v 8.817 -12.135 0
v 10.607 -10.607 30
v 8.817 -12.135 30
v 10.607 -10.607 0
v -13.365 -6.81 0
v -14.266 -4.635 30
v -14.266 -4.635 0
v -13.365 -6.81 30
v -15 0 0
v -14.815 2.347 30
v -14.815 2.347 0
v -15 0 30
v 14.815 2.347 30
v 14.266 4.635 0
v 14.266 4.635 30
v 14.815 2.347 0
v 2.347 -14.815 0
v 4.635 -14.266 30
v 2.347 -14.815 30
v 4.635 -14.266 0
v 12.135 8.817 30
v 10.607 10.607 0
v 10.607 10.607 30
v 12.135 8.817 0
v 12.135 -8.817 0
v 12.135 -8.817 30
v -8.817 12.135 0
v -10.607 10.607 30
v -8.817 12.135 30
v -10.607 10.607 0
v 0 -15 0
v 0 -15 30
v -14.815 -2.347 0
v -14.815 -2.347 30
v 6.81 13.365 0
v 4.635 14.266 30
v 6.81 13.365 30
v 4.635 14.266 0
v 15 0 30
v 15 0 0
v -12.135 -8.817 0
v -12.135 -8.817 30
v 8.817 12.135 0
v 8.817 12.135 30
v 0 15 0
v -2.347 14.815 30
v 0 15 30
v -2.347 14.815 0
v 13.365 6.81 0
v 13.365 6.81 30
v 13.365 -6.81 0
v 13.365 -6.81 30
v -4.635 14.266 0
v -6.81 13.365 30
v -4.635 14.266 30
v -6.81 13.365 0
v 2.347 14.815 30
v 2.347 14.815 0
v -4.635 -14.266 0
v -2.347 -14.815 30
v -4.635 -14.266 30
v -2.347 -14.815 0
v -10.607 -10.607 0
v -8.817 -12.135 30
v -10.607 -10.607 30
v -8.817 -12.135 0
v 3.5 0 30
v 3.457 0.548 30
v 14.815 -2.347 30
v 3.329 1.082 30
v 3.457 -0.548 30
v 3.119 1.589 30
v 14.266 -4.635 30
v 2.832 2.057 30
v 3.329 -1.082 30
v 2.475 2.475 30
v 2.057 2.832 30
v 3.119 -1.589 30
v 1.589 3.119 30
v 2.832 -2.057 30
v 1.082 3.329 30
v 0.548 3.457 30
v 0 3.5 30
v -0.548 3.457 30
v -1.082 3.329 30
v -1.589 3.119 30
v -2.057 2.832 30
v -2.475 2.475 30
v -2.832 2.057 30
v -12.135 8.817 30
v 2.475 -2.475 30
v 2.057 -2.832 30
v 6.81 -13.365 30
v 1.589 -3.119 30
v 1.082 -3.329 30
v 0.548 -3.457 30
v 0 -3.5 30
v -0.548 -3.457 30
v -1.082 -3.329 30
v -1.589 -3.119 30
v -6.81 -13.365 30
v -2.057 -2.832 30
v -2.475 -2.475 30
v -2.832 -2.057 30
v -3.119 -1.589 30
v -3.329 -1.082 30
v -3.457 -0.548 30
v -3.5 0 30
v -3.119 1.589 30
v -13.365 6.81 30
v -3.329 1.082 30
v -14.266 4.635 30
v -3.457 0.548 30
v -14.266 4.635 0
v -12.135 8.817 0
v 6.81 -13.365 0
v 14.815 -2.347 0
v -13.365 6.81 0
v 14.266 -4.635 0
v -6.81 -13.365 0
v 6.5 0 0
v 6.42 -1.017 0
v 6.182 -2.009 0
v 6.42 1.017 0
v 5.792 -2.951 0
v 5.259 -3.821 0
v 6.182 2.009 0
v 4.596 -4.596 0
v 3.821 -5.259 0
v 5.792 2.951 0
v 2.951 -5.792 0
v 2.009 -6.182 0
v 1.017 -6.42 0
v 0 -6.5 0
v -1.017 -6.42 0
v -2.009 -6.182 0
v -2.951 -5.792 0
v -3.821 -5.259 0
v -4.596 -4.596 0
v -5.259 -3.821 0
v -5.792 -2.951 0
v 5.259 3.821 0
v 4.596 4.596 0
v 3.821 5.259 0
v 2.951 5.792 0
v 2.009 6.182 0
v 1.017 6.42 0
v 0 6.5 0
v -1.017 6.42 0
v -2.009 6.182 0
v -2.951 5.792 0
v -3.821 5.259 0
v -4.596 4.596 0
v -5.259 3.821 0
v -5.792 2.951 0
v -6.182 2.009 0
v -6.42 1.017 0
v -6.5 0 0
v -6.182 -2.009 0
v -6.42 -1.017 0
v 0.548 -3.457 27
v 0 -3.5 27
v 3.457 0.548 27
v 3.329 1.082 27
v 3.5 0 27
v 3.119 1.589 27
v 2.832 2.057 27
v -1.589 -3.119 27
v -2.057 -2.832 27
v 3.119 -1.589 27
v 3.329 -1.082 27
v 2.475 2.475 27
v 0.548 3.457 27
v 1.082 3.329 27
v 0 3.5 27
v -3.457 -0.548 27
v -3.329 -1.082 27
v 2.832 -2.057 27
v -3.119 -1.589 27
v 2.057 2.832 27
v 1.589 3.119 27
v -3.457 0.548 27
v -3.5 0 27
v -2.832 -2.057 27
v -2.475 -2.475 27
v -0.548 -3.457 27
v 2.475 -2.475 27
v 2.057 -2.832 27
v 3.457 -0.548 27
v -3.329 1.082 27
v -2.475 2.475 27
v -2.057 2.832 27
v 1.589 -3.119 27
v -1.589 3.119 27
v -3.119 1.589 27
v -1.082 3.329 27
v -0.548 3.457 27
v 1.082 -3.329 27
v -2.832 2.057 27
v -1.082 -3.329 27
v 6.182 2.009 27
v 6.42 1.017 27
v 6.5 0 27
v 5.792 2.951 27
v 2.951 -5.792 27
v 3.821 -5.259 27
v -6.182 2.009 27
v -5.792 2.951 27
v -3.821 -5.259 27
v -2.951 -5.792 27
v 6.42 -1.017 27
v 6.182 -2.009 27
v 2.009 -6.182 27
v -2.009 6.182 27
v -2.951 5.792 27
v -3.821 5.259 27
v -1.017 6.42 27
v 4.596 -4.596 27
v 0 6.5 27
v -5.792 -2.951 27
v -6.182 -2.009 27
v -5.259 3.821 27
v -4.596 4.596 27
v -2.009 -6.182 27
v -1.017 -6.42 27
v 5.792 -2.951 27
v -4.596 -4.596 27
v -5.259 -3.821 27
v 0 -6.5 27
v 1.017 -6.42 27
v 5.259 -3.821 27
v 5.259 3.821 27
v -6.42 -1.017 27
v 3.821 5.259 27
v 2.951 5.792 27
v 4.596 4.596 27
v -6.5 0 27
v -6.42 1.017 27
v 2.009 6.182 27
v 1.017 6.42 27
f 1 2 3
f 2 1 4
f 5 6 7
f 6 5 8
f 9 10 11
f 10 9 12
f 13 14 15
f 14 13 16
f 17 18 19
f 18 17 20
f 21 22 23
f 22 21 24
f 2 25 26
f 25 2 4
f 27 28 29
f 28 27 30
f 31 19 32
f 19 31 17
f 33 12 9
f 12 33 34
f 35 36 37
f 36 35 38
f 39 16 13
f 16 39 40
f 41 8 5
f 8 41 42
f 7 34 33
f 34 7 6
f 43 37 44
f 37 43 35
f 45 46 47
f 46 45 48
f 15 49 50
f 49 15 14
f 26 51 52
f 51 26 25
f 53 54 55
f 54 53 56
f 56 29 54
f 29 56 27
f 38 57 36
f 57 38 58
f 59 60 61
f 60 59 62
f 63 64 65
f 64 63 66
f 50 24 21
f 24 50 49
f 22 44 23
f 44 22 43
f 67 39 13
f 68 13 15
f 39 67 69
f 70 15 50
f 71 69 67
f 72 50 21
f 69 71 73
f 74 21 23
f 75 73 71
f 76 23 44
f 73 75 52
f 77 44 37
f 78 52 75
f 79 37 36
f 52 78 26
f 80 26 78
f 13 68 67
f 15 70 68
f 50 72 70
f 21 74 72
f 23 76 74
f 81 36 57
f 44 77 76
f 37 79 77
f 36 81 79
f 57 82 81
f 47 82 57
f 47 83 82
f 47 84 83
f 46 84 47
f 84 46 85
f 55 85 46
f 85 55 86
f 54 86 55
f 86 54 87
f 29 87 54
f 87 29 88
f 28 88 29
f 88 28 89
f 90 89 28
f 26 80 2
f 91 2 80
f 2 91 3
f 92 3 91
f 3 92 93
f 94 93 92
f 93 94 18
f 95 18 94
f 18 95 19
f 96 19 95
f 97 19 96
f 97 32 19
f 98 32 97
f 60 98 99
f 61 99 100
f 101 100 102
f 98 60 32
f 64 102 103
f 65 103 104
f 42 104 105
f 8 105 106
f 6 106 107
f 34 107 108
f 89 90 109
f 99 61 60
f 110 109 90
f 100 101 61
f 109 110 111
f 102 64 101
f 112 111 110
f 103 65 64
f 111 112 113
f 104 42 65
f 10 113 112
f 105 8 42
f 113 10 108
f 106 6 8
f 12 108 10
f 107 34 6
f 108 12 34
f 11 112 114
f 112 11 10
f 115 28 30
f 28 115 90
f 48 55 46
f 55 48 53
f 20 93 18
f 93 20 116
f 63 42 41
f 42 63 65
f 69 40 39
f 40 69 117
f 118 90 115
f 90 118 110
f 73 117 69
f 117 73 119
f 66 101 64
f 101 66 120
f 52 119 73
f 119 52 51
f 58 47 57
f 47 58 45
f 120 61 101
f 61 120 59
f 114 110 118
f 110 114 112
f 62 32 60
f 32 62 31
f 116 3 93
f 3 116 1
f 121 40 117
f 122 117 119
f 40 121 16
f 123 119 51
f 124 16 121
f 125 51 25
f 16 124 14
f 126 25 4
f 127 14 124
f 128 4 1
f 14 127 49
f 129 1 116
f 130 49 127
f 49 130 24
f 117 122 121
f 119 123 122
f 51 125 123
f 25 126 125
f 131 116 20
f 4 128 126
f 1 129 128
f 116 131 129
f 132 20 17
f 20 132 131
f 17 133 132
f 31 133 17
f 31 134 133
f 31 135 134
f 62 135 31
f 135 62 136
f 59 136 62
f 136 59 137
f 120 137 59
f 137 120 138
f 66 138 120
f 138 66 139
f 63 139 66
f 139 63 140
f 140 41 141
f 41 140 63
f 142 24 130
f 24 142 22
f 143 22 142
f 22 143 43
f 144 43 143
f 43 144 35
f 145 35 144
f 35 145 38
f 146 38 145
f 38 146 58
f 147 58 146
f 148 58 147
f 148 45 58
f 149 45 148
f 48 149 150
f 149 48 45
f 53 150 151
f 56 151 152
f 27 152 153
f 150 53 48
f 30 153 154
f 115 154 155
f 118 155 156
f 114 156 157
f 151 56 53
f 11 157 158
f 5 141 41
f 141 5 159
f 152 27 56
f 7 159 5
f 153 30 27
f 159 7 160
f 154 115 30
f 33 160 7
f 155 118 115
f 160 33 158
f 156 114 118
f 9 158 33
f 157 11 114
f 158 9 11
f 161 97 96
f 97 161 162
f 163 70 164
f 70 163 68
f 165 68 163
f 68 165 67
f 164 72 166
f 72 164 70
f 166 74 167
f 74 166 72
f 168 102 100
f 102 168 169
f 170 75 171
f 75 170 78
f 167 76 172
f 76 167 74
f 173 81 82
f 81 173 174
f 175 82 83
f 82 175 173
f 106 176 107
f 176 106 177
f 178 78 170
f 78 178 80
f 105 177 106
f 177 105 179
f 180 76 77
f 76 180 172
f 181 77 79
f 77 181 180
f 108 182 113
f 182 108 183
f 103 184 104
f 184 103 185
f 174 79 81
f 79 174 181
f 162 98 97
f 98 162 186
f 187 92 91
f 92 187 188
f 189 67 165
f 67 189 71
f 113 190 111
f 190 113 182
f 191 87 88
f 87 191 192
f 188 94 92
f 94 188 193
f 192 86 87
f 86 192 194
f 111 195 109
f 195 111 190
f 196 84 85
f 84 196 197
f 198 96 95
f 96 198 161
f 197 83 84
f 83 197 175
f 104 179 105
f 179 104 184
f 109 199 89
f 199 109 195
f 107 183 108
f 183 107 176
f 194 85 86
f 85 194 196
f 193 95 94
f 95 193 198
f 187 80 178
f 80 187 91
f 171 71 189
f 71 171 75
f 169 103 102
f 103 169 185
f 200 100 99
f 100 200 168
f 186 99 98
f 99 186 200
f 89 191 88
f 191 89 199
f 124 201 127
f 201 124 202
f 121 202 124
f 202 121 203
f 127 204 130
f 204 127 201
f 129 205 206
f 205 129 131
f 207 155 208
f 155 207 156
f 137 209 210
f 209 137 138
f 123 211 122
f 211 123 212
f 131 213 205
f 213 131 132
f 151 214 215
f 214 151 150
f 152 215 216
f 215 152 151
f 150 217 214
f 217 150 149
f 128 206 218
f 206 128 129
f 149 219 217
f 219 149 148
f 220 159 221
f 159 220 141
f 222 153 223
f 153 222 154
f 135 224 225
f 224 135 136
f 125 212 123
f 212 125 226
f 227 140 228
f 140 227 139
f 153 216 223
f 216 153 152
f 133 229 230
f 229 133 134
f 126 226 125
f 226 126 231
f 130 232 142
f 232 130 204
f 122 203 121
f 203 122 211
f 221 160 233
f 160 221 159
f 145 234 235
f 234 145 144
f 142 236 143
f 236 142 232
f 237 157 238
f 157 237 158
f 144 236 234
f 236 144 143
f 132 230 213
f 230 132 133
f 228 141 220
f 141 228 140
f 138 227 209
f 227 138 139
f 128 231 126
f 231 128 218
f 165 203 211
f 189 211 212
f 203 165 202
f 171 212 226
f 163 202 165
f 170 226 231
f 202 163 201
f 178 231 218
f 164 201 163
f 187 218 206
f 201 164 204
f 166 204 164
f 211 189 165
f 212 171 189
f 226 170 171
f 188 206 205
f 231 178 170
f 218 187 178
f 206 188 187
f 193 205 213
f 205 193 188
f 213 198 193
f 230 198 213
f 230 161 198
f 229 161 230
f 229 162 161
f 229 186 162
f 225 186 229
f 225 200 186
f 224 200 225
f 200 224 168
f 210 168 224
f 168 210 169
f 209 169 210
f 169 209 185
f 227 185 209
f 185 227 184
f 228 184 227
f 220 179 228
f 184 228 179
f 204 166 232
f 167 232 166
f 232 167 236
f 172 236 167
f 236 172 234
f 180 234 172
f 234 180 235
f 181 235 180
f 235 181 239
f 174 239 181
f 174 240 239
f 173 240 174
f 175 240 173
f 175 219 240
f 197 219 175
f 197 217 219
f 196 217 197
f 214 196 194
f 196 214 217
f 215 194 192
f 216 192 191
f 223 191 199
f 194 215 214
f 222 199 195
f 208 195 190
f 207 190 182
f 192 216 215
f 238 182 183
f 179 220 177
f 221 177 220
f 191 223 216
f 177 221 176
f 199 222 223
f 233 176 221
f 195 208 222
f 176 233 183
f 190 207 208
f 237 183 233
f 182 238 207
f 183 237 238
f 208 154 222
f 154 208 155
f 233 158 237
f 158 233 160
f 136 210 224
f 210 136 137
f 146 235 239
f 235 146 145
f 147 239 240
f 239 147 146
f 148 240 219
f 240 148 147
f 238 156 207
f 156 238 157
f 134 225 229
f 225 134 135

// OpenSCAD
//measurements

//https://www.lofty.com/pages/how-to-measure-three-dimensional-objects-including-silver-ceramics-glass-sculpture

object_height = 30;

module holder_with_hole(){
    difference(){
        cylinder(h=object_height, d=30, $fn=40);
        cylinder(h=object_height, d=7, $fn=40);
        }
    }
    
module hole_inside(){
    color ("blue") {cylinder(h=object_height-3, d=13, $fn=40);}
    }

module main_body(){
  difference(){
    holder_with_hole();
    hole_inside();
    
}
    
}


main_body();
